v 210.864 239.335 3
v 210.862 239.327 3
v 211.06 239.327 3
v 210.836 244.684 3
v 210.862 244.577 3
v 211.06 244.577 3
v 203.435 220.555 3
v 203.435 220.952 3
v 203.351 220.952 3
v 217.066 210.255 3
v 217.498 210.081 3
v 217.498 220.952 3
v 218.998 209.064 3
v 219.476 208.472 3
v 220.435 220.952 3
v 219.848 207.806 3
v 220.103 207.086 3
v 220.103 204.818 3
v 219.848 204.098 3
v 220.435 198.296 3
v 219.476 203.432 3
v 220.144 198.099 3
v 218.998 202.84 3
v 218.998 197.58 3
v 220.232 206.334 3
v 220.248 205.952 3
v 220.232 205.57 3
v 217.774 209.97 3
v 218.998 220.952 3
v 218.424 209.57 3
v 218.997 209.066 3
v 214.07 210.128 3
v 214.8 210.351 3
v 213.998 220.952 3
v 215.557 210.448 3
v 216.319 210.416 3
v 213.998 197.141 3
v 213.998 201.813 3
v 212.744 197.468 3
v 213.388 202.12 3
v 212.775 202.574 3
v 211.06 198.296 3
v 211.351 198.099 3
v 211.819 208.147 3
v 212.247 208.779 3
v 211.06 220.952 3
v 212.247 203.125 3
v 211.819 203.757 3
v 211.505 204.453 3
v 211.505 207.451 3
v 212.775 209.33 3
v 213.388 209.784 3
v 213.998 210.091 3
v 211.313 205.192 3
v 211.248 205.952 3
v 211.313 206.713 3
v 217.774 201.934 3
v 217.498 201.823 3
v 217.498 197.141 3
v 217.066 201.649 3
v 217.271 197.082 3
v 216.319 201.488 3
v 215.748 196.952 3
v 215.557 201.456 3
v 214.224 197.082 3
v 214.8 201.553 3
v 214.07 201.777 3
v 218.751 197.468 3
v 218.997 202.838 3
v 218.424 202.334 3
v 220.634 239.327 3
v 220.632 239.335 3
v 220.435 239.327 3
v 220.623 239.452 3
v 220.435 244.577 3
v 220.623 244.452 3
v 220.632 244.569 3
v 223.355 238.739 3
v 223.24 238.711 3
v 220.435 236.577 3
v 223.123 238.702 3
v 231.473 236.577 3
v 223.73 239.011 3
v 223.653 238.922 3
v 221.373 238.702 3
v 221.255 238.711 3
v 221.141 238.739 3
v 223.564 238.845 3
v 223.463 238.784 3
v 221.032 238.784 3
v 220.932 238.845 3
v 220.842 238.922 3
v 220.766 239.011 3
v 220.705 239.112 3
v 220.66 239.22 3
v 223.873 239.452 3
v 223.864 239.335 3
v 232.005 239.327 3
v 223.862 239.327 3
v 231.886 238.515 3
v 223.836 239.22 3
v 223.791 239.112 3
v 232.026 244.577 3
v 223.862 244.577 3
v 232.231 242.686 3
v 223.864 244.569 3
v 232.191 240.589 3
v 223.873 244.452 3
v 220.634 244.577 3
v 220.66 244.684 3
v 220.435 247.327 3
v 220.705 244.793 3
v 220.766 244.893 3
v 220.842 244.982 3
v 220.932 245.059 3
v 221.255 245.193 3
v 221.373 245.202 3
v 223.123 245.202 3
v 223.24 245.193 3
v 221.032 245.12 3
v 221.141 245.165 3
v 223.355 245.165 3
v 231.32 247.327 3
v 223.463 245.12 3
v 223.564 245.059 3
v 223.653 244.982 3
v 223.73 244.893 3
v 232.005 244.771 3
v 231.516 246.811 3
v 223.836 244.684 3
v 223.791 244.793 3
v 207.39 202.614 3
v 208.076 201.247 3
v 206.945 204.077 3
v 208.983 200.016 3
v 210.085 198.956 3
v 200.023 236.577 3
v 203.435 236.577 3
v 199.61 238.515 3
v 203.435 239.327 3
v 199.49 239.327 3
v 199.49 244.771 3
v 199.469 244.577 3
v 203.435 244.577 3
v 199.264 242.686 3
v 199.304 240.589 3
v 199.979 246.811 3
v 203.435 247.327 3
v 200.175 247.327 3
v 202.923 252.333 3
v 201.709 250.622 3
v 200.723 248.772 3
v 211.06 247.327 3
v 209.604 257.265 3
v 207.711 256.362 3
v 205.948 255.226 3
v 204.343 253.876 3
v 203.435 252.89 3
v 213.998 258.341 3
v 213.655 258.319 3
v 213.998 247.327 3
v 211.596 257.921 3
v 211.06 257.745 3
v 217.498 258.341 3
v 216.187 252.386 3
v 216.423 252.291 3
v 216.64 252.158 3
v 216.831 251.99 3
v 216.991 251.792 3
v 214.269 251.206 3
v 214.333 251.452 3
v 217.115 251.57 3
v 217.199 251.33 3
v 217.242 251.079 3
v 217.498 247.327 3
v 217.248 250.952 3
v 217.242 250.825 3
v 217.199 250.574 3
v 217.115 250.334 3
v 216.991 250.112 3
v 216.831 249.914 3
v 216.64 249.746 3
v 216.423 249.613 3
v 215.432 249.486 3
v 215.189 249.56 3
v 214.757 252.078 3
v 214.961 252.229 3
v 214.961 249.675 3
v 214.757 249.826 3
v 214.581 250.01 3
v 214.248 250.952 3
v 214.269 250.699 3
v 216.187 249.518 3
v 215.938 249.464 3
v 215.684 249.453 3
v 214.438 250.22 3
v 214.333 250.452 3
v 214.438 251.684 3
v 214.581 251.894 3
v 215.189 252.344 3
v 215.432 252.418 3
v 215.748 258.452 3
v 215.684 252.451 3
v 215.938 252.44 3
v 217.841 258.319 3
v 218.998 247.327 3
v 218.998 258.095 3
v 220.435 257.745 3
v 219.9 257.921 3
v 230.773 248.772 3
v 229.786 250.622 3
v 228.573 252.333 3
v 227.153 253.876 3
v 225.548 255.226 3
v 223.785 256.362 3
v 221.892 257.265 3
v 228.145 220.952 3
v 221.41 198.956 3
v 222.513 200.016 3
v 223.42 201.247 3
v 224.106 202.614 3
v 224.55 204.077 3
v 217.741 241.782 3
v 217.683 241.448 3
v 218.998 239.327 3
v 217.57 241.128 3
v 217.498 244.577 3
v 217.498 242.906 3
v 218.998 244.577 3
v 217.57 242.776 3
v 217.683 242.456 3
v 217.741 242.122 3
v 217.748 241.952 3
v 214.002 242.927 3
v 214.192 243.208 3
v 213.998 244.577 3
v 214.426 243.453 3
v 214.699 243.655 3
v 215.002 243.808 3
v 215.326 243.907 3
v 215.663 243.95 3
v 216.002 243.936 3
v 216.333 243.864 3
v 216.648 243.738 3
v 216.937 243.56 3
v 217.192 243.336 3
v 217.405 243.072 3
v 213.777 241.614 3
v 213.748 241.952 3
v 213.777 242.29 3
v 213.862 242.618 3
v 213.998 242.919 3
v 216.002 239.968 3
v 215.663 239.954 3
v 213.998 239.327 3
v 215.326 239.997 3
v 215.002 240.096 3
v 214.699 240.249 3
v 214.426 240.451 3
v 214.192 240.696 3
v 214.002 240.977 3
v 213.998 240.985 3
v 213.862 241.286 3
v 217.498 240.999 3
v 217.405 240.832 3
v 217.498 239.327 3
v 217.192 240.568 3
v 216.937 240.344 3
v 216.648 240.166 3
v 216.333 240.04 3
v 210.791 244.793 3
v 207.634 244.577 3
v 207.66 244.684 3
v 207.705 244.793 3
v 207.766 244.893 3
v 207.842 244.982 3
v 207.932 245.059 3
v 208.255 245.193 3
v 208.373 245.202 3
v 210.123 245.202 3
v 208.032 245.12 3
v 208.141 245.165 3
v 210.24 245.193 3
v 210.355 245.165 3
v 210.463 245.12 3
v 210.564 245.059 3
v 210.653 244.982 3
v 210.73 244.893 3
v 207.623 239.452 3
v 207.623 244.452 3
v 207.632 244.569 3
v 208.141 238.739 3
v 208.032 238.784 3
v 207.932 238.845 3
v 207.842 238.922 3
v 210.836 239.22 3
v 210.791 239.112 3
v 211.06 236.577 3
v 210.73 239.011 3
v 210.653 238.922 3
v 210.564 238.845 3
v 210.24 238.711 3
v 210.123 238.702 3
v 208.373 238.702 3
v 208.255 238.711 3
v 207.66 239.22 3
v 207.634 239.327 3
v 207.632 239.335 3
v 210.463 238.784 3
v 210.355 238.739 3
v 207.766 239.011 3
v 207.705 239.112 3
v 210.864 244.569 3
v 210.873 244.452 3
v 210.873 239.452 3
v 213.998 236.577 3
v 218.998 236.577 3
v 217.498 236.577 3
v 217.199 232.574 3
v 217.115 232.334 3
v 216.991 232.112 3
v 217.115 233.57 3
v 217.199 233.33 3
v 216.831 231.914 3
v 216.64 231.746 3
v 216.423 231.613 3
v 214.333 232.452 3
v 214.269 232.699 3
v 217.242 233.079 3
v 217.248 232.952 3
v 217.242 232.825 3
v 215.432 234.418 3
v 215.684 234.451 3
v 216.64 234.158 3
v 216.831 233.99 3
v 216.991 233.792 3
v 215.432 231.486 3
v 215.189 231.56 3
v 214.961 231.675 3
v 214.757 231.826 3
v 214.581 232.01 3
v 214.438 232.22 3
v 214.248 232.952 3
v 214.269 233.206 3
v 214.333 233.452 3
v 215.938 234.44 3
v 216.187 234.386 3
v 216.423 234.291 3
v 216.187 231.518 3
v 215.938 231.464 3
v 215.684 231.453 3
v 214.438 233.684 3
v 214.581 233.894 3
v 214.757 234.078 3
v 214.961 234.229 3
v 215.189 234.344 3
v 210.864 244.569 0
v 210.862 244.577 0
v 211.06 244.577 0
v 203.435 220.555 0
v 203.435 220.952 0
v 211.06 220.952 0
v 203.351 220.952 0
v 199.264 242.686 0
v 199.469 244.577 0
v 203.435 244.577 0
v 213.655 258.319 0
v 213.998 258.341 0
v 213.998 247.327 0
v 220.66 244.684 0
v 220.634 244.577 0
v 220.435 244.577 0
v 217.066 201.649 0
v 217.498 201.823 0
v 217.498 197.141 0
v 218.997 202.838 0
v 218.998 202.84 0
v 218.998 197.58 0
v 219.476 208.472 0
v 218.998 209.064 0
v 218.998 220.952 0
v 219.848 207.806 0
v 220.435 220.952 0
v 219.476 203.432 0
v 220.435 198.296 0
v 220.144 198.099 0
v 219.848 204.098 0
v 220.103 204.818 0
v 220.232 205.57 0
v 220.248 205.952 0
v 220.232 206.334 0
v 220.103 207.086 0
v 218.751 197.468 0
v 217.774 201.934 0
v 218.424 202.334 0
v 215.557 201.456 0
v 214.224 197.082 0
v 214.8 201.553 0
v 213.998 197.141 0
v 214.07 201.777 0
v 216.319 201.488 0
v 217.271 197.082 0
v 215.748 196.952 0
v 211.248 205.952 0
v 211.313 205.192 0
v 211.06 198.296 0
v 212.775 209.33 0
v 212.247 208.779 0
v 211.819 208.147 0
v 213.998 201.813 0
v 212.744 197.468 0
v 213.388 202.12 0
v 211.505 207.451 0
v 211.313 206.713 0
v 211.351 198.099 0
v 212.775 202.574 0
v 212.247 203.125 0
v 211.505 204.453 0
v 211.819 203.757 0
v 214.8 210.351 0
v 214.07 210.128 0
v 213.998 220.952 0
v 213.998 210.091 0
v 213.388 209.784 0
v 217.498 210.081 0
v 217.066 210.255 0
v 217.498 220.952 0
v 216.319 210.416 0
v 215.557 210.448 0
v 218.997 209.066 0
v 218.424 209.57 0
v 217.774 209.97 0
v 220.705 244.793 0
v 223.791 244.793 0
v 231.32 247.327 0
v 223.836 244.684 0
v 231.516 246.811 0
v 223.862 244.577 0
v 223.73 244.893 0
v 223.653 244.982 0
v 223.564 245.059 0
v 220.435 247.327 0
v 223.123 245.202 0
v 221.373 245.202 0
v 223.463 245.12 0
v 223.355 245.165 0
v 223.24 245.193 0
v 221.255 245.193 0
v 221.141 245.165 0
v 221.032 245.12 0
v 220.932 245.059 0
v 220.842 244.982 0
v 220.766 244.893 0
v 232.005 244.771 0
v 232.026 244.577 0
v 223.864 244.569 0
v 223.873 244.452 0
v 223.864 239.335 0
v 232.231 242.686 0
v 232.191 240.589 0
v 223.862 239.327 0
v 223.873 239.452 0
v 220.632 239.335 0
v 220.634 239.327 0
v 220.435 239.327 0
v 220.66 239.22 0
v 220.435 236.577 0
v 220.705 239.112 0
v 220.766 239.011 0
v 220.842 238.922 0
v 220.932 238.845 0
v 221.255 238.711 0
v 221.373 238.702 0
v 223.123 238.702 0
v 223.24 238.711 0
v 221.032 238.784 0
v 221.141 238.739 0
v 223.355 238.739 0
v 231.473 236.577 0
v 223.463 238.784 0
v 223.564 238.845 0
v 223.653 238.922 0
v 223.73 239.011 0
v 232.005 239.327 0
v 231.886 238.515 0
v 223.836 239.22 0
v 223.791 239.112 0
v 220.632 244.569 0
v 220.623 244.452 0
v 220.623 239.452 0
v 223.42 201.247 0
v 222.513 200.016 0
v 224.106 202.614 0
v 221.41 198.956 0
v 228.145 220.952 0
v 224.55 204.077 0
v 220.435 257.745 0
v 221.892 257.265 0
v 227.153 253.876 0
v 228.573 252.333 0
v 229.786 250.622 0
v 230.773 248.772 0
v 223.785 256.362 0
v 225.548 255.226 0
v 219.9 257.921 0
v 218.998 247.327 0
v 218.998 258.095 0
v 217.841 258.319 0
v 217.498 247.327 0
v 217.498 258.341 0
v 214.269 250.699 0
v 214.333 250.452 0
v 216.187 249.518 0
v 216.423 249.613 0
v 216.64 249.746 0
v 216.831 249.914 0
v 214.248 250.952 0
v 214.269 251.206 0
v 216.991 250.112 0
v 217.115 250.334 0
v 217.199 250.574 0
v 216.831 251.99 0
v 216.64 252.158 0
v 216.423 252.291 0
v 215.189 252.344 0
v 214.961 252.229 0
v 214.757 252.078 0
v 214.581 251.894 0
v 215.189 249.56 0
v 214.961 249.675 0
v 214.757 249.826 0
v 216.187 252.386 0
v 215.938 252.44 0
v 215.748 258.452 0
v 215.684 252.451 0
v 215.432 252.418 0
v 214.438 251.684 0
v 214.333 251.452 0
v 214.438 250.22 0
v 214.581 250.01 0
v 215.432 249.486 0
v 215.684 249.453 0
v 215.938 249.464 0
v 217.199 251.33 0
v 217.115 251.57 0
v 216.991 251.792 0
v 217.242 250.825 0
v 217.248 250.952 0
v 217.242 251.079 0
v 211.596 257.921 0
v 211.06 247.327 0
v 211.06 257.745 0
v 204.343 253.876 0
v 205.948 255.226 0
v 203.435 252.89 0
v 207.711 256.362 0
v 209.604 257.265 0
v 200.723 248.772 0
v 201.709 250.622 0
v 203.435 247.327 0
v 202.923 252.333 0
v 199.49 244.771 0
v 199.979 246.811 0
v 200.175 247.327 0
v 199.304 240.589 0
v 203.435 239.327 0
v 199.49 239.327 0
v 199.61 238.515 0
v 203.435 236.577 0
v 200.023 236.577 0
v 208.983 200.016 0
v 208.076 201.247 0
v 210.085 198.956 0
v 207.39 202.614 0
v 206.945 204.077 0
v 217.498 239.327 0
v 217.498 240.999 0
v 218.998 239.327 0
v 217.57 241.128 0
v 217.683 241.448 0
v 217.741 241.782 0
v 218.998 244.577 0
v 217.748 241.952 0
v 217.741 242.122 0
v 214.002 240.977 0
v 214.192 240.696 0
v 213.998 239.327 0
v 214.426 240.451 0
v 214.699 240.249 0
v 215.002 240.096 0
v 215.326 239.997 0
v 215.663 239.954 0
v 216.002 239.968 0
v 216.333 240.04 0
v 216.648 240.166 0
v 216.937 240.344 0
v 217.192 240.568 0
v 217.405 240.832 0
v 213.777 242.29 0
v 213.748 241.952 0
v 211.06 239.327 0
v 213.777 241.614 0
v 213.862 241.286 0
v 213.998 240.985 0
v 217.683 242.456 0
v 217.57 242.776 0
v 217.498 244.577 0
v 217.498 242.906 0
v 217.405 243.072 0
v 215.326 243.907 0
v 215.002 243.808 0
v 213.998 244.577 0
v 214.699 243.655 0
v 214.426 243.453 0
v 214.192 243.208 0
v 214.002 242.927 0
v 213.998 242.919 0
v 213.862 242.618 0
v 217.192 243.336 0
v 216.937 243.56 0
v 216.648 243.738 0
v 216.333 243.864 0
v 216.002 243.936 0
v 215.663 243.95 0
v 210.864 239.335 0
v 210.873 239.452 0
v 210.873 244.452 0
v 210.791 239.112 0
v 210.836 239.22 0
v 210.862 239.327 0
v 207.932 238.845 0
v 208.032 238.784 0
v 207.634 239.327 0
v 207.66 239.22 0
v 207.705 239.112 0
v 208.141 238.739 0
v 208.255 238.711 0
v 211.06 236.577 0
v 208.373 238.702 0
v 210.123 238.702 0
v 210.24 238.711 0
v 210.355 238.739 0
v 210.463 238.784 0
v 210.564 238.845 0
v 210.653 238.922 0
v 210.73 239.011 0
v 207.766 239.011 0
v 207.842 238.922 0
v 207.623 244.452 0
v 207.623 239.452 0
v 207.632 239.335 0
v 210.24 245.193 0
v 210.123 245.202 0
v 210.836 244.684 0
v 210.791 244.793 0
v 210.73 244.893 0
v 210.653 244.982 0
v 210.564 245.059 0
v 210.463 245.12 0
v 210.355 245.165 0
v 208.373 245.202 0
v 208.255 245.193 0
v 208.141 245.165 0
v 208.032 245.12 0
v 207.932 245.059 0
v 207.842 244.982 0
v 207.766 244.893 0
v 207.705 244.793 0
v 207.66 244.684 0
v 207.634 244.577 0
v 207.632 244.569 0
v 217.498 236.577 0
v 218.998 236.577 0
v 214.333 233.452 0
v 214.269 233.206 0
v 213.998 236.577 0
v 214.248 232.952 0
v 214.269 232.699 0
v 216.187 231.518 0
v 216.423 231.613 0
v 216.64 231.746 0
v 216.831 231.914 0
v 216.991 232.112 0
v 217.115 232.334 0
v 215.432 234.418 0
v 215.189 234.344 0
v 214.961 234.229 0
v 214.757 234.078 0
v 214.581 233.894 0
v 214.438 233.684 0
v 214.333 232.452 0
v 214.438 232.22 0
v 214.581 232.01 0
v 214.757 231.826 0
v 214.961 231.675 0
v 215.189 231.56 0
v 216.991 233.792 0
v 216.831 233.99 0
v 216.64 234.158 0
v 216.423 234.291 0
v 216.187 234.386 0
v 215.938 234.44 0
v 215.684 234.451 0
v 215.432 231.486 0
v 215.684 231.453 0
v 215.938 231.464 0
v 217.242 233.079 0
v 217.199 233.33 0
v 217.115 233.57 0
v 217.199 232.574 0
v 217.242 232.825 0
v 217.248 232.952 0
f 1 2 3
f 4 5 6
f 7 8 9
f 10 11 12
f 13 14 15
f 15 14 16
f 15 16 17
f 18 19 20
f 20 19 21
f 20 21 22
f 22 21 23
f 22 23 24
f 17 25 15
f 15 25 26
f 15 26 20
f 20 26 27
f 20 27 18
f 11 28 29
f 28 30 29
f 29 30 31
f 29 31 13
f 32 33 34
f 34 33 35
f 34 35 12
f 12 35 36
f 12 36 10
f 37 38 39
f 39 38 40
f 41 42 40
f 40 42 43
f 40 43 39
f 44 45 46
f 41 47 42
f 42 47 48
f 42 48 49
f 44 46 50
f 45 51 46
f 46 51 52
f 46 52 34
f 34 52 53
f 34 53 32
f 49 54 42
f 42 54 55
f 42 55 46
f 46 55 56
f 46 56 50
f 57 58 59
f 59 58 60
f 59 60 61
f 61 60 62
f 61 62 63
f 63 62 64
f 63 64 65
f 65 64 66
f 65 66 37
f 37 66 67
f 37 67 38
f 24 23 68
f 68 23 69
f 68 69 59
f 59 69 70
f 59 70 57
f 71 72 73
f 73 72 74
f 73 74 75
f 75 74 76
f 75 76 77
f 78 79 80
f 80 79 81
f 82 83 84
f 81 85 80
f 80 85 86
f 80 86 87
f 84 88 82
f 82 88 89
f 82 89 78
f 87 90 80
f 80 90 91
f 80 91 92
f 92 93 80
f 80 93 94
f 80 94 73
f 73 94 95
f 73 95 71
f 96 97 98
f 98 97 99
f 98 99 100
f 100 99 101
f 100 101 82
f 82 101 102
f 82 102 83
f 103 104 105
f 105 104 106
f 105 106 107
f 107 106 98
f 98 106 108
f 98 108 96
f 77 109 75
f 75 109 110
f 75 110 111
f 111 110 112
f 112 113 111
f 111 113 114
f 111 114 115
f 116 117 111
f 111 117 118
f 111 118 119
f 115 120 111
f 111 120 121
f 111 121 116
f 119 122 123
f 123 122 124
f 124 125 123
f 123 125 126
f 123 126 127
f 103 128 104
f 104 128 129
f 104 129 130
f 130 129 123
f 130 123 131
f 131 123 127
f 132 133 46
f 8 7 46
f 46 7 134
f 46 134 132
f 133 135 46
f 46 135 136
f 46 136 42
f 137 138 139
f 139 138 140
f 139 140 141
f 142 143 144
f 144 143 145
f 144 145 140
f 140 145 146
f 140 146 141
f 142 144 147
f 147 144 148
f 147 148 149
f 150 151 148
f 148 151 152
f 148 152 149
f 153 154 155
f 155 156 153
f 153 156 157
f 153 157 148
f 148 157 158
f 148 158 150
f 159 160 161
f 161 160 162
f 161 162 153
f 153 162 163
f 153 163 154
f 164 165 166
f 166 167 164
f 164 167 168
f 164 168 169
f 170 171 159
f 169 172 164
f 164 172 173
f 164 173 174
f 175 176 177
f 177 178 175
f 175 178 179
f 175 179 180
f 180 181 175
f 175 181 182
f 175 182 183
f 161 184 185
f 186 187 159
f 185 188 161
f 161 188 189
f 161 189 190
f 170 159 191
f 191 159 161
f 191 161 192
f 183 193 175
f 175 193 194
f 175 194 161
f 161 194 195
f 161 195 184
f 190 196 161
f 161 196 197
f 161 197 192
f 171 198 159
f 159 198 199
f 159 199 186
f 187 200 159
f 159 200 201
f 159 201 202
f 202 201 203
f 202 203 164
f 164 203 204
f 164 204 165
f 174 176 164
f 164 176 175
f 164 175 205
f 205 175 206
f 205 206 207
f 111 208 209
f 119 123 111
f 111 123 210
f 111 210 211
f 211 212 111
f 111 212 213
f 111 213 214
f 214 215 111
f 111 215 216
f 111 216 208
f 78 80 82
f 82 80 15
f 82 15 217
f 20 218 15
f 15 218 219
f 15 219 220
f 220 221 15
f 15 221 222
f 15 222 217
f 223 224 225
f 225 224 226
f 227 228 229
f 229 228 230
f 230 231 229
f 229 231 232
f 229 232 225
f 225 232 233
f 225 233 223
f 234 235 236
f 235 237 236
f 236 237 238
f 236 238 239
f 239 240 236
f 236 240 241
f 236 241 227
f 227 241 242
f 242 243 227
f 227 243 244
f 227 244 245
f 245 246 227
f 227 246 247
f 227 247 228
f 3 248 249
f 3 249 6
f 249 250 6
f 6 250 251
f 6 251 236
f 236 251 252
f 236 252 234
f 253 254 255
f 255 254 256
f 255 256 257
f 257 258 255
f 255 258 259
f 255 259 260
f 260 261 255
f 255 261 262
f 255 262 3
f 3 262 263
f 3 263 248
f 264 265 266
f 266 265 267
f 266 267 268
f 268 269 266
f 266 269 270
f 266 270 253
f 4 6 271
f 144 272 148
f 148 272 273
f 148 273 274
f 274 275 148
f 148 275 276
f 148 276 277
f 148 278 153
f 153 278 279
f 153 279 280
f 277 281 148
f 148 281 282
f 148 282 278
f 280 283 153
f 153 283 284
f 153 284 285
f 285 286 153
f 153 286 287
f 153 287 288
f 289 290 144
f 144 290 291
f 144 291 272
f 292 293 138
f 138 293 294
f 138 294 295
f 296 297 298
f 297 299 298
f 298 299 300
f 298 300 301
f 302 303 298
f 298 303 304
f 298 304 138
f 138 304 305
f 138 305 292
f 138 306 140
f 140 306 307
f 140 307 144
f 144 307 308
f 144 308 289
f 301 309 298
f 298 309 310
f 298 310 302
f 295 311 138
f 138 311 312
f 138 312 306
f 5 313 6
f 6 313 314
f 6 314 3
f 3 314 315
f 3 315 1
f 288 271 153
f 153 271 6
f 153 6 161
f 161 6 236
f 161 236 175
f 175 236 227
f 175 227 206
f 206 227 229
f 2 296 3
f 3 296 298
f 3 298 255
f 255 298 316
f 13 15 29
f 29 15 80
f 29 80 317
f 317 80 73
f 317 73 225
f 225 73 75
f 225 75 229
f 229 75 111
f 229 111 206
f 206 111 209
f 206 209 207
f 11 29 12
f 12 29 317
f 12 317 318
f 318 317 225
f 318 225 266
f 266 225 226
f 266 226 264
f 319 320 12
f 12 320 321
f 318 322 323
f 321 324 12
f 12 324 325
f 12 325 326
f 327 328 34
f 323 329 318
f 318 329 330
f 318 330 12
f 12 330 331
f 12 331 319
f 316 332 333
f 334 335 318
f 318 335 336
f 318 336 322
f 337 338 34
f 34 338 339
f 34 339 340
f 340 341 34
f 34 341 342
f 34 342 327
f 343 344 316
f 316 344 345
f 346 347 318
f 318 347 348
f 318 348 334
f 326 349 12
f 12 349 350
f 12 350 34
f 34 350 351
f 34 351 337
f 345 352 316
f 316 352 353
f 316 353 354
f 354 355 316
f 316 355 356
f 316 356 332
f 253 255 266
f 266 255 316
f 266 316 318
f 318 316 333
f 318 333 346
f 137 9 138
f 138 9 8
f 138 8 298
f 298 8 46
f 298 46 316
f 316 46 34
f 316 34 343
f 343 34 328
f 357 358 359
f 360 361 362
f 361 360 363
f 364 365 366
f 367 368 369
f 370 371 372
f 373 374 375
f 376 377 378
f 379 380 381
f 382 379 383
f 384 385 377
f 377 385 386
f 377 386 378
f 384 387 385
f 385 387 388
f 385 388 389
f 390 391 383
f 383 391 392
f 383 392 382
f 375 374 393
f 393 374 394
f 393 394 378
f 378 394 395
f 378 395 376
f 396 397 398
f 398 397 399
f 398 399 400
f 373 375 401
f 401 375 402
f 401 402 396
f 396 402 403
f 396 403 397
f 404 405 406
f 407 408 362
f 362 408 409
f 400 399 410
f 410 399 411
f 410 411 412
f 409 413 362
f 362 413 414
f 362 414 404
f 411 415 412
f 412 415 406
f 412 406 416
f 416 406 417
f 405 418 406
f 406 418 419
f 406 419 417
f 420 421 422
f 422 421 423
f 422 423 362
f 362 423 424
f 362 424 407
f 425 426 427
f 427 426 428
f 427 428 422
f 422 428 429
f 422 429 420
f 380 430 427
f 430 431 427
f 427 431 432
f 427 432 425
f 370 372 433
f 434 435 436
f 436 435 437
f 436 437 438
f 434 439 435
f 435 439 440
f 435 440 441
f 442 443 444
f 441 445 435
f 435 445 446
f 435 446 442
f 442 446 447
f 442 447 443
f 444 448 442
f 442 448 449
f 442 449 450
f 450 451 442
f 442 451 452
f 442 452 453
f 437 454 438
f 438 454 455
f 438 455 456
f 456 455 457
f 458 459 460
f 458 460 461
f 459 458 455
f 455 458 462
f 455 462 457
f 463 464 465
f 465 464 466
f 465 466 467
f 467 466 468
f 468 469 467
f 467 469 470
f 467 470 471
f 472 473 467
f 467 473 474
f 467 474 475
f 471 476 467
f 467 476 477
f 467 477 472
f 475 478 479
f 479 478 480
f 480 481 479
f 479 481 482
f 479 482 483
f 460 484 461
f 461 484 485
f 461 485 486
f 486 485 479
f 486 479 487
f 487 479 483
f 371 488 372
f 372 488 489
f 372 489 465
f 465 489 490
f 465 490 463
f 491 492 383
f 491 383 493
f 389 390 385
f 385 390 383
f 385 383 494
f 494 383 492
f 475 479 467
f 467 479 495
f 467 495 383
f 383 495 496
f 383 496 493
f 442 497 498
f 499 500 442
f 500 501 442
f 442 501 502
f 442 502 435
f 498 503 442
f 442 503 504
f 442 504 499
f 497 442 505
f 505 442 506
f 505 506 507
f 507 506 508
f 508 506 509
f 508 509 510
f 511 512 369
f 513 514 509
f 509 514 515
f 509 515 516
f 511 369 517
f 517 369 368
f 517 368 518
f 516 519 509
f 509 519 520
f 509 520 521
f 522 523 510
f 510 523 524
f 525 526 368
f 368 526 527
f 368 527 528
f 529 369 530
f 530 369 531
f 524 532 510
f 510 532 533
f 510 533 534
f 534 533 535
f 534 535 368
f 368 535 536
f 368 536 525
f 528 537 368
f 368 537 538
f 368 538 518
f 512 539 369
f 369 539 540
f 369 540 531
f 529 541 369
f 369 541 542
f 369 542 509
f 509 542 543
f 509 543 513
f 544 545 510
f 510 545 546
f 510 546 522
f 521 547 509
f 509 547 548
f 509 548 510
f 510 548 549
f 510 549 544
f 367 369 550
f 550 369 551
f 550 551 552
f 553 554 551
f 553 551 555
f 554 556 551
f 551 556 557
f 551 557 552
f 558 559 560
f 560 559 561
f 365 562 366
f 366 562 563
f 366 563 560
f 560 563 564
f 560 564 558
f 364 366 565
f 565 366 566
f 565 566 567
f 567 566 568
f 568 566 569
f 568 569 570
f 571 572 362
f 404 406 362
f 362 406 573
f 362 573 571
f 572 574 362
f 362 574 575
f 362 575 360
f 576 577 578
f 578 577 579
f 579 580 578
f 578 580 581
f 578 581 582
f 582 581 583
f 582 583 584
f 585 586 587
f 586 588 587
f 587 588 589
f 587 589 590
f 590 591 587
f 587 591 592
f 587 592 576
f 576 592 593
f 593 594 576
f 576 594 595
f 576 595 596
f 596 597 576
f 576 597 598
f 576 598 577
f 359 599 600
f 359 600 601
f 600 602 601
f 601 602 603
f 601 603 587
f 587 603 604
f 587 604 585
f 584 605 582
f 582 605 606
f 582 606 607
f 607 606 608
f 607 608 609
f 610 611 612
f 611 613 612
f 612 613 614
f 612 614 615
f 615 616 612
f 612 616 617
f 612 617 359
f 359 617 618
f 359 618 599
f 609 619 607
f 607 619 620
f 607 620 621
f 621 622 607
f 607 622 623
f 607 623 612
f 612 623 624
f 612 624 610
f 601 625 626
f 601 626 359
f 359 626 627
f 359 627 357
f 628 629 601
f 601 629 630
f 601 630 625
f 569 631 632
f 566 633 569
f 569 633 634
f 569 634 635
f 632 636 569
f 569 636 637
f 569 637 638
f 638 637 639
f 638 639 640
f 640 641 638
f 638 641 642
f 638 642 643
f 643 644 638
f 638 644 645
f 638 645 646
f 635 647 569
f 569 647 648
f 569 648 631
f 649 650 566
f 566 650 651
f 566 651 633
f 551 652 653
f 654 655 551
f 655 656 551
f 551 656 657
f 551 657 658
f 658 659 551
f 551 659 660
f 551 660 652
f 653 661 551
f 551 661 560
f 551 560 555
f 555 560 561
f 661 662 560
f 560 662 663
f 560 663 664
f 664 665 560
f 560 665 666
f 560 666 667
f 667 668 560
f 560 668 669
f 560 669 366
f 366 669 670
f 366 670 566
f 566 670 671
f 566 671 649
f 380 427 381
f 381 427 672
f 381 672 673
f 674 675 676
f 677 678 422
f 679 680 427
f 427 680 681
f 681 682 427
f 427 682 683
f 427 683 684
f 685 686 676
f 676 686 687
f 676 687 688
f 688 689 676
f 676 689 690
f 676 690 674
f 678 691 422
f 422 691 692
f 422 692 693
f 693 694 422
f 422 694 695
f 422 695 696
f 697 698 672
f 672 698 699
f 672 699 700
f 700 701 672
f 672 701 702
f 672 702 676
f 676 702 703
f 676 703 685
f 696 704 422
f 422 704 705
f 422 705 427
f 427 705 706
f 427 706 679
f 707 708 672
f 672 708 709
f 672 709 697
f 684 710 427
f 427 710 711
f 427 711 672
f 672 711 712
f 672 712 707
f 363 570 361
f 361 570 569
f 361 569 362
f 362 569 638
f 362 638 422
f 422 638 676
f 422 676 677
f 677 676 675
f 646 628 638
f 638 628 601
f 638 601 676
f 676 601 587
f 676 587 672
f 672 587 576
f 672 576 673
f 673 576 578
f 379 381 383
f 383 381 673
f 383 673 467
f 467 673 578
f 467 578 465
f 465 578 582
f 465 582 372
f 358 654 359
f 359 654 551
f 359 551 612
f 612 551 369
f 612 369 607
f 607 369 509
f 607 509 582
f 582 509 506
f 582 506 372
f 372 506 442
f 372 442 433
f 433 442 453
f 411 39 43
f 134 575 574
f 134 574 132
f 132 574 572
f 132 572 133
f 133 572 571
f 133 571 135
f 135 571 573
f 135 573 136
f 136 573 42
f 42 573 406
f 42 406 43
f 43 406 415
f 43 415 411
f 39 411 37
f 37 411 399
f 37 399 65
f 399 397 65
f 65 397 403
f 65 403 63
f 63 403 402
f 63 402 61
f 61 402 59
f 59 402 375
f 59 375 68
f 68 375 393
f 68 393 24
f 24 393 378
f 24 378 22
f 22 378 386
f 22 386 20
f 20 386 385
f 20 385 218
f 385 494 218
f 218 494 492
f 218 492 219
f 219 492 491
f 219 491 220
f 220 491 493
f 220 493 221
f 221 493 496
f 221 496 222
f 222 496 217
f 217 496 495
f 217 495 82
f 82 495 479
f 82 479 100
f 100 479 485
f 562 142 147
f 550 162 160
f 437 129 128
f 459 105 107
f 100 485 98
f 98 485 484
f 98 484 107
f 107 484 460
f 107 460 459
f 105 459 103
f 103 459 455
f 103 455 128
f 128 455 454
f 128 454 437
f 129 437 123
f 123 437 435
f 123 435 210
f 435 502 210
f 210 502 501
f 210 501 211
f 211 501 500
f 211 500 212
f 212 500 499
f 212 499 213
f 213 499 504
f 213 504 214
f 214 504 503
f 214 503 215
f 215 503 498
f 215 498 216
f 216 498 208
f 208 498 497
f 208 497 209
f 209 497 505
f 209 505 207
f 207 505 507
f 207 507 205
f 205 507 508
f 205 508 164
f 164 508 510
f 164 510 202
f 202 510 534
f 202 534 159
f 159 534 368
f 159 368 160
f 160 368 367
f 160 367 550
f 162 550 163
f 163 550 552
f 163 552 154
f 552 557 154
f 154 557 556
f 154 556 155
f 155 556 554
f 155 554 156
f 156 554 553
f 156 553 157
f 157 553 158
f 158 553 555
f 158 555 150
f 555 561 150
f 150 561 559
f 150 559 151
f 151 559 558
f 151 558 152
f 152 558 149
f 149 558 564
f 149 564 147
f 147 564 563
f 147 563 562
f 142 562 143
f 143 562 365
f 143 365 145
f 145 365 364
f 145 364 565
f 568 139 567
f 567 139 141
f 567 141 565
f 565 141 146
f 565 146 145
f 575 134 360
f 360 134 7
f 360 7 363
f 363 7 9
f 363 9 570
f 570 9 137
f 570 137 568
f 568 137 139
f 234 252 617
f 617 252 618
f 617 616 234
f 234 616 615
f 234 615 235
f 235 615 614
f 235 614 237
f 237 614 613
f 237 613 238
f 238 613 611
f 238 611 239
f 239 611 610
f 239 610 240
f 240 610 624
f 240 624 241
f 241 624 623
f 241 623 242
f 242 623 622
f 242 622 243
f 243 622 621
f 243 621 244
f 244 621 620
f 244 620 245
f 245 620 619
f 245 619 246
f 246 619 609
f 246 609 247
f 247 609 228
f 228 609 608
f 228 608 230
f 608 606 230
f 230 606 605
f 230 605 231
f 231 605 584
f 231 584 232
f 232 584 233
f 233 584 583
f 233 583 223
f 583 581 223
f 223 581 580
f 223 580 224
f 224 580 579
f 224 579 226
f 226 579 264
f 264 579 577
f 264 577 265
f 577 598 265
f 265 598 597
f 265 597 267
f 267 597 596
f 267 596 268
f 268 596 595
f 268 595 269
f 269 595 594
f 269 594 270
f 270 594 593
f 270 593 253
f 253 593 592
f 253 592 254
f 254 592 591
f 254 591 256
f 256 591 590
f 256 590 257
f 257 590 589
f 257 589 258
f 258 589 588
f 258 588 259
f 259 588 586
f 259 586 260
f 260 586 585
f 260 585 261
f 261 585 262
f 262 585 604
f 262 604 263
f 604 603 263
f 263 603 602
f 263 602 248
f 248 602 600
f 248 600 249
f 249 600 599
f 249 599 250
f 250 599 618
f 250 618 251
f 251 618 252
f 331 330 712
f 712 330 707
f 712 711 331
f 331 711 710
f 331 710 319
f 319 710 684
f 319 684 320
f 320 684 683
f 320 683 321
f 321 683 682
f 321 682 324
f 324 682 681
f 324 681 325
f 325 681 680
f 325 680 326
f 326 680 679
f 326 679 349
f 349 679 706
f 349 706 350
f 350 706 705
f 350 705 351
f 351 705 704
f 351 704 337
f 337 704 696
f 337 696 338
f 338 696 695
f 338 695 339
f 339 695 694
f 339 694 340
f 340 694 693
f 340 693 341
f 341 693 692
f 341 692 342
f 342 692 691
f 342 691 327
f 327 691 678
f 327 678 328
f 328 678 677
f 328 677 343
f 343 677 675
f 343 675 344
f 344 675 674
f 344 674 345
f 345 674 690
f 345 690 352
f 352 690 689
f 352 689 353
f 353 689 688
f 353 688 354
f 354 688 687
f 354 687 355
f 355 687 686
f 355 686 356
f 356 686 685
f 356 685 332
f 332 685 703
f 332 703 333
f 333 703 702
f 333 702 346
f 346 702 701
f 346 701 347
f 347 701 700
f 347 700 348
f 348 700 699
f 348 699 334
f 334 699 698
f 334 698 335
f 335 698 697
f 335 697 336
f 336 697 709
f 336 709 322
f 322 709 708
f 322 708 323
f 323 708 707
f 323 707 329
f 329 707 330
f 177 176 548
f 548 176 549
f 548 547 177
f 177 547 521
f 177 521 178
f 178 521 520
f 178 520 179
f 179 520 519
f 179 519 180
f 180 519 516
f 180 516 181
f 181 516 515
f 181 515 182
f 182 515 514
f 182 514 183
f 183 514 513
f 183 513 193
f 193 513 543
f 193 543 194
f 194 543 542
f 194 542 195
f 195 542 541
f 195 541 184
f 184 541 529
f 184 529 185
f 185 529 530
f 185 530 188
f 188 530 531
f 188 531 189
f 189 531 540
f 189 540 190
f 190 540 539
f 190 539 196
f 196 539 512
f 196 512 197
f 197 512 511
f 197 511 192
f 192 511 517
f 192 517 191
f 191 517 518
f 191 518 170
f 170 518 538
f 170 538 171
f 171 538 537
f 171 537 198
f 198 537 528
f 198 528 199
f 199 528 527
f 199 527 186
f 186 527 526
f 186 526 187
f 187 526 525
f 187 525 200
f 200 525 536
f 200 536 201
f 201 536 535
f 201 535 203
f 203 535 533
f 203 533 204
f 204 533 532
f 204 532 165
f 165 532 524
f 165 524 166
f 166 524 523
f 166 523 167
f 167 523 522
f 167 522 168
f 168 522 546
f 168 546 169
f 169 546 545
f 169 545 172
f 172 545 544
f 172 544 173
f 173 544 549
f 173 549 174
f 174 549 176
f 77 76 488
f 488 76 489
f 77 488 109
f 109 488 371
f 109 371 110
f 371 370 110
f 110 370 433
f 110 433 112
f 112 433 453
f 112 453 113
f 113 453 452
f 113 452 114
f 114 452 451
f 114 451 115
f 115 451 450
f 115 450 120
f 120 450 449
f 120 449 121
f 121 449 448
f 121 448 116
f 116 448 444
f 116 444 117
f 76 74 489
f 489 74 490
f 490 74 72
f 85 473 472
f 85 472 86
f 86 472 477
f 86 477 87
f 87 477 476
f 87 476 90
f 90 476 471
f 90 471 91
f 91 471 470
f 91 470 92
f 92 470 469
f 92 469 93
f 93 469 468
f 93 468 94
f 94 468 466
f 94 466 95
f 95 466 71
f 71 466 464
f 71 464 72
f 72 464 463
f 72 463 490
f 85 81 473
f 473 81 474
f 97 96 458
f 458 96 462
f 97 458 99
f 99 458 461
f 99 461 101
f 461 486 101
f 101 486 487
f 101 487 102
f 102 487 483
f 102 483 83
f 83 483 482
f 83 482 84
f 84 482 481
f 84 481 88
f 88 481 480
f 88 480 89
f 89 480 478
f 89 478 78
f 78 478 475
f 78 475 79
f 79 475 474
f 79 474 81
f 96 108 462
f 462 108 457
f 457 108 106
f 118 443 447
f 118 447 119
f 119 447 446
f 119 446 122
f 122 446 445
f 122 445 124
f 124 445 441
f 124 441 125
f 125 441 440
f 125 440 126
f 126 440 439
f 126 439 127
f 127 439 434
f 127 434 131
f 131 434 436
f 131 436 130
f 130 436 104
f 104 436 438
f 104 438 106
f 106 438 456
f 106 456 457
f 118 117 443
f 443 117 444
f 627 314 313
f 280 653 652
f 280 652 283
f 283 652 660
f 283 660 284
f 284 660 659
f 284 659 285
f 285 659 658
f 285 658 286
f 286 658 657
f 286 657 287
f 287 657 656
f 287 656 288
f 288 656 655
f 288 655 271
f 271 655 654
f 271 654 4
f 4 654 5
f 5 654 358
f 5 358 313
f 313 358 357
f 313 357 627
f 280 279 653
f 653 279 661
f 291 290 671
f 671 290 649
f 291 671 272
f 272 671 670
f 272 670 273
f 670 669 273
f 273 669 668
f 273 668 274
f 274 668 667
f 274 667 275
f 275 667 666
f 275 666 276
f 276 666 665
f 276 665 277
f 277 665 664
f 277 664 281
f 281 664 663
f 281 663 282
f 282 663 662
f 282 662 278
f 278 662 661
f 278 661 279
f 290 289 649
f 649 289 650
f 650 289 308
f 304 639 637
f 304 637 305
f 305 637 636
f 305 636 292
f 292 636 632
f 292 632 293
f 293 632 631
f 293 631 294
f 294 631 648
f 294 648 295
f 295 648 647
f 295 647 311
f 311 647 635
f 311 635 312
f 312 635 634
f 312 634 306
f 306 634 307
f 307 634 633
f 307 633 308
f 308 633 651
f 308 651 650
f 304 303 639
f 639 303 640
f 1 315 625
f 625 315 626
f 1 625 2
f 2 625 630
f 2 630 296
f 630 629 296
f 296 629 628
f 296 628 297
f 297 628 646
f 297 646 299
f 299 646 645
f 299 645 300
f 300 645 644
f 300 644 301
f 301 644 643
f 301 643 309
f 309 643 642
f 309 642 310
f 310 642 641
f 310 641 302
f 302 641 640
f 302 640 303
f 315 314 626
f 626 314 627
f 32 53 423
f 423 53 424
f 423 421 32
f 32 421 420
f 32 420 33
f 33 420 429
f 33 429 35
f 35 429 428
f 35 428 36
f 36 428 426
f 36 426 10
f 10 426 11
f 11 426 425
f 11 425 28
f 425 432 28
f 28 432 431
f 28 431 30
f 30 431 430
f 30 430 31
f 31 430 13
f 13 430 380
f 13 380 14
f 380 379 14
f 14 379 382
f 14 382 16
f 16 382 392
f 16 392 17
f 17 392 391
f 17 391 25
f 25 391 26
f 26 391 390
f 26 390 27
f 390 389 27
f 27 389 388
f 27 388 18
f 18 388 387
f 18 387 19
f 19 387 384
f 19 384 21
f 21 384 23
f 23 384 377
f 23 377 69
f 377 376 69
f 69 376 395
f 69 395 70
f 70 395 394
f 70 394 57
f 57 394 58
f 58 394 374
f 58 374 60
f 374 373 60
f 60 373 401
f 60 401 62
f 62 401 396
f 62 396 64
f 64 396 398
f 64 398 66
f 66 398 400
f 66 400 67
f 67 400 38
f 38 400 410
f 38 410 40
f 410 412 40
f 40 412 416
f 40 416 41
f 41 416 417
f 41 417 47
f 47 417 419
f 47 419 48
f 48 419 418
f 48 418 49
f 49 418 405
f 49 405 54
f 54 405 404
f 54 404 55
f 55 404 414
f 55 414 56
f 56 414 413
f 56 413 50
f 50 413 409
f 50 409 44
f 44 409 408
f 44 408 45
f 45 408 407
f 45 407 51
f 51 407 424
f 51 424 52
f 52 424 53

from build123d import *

# Parameters (mm, degrees)
MODEL_R                 = 2
MODEL_R_2               = 1.5
MODEL_R_3               = 4.5
SALIENTE_EXTRUIR1_DEPTH = 3


with BuildPart() as part:
    # Model → Saliente-Extruir1 (new body)
    with BuildSketch(Plane.XY):
        with BuildLine():
            Line((206.945286968, 204.077019993), (199.609852846, 238.514519993))
            ThreePointArc((199.609852846, 238.514519993), (215.747807914, 258.452019993), (231.885762981, 238.514519993))
            Line((231.885762981, 238.514519993), (224.550328859, 204.077019993))
            ThreePointArc((224.550328859, 204.077019993), (215.747807914, 196.952019993), (206.945286968, 204.077019993))
        make_face()
        with Locations((215.747807914, 241.952019993)):
            Circle(MODEL_R, mode=Mode.SUBTRACT)
        with Locations((215.747807914, 232.952019993)):
            Circle(MODEL_R_2, mode=Mode.SUBTRACT)
        with Locations((215.747807914, 250.952019993)):
            Circle(MODEL_R_2, mode=Mode.SUBTRACT)
        with Locations((215.747807914, 205.952019993)):
            Circle(MODEL_R_3, mode=Mode.SUBTRACT)
        with BuildLine():
            Line((223.122807913, 245.202019993), (221.372807913, 245.202019993))
            ThreePointArc((221.372807913, 245.202019993), (220.842477828, 244.982350079), (220.622807913, 244.452019993))
            Line((220.622807913, 244.452019993), (220.622807913, 239.452019993))
            ThreePointArc((220.622807913, 239.452019993), (220.842477828, 238.921689907), (221.372807913, 238.702019993))
            Line((221.372807913, 238.702019993), (223.122807913, 238.702019993))
            ThreePointArc((223.122807913, 238.702019993), (223.653137999, 238.921689907), (223.872807913, 239.452019993))
            Line((223.872807913, 239.452019993), (223.872807913, 244.452019993))
            ThreePointArc((223.872807913, 244.452019993), (223.653137999, 244.982350079), (223.122807913, 245.202019993))
        make_face(mode=Mode.SUBTRACT)
        with BuildLine():
            Line((208.372807913, 245.202019993), (210.122807913, 245.202019993))
            ThreePointArc((210.122807913, 245.202019993), (210.653137999, 244.982350079), (210.872807913, 244.452019993))
            Line((210.872807913, 244.452019993), (210.872807913, 239.452019993))
            ThreePointArc((210.872807913, 239.452019993), (210.653137999, 238.921689907), (210.122807913, 238.702019993))
            Line((210.122807913, 238.702019993), (208.372807913, 238.702019993))
            ThreePointArc((208.372807913, 238.702019993), (207.842477828, 238.921689907), (207.622807913, 239.452019993))
            Line((207.622807913, 239.452019993), (207.622807913, 244.452019993))
            ThreePointArc((207.622807913, 244.452019993), (207.842477828, 244.982350079), (208.372807913, 245.202019993))
        make_face(mode=Mode.SUBTRACT)
    extrude(amount=SALIENTE_EXTRUIR1_DEPTH)


solid = part.part
